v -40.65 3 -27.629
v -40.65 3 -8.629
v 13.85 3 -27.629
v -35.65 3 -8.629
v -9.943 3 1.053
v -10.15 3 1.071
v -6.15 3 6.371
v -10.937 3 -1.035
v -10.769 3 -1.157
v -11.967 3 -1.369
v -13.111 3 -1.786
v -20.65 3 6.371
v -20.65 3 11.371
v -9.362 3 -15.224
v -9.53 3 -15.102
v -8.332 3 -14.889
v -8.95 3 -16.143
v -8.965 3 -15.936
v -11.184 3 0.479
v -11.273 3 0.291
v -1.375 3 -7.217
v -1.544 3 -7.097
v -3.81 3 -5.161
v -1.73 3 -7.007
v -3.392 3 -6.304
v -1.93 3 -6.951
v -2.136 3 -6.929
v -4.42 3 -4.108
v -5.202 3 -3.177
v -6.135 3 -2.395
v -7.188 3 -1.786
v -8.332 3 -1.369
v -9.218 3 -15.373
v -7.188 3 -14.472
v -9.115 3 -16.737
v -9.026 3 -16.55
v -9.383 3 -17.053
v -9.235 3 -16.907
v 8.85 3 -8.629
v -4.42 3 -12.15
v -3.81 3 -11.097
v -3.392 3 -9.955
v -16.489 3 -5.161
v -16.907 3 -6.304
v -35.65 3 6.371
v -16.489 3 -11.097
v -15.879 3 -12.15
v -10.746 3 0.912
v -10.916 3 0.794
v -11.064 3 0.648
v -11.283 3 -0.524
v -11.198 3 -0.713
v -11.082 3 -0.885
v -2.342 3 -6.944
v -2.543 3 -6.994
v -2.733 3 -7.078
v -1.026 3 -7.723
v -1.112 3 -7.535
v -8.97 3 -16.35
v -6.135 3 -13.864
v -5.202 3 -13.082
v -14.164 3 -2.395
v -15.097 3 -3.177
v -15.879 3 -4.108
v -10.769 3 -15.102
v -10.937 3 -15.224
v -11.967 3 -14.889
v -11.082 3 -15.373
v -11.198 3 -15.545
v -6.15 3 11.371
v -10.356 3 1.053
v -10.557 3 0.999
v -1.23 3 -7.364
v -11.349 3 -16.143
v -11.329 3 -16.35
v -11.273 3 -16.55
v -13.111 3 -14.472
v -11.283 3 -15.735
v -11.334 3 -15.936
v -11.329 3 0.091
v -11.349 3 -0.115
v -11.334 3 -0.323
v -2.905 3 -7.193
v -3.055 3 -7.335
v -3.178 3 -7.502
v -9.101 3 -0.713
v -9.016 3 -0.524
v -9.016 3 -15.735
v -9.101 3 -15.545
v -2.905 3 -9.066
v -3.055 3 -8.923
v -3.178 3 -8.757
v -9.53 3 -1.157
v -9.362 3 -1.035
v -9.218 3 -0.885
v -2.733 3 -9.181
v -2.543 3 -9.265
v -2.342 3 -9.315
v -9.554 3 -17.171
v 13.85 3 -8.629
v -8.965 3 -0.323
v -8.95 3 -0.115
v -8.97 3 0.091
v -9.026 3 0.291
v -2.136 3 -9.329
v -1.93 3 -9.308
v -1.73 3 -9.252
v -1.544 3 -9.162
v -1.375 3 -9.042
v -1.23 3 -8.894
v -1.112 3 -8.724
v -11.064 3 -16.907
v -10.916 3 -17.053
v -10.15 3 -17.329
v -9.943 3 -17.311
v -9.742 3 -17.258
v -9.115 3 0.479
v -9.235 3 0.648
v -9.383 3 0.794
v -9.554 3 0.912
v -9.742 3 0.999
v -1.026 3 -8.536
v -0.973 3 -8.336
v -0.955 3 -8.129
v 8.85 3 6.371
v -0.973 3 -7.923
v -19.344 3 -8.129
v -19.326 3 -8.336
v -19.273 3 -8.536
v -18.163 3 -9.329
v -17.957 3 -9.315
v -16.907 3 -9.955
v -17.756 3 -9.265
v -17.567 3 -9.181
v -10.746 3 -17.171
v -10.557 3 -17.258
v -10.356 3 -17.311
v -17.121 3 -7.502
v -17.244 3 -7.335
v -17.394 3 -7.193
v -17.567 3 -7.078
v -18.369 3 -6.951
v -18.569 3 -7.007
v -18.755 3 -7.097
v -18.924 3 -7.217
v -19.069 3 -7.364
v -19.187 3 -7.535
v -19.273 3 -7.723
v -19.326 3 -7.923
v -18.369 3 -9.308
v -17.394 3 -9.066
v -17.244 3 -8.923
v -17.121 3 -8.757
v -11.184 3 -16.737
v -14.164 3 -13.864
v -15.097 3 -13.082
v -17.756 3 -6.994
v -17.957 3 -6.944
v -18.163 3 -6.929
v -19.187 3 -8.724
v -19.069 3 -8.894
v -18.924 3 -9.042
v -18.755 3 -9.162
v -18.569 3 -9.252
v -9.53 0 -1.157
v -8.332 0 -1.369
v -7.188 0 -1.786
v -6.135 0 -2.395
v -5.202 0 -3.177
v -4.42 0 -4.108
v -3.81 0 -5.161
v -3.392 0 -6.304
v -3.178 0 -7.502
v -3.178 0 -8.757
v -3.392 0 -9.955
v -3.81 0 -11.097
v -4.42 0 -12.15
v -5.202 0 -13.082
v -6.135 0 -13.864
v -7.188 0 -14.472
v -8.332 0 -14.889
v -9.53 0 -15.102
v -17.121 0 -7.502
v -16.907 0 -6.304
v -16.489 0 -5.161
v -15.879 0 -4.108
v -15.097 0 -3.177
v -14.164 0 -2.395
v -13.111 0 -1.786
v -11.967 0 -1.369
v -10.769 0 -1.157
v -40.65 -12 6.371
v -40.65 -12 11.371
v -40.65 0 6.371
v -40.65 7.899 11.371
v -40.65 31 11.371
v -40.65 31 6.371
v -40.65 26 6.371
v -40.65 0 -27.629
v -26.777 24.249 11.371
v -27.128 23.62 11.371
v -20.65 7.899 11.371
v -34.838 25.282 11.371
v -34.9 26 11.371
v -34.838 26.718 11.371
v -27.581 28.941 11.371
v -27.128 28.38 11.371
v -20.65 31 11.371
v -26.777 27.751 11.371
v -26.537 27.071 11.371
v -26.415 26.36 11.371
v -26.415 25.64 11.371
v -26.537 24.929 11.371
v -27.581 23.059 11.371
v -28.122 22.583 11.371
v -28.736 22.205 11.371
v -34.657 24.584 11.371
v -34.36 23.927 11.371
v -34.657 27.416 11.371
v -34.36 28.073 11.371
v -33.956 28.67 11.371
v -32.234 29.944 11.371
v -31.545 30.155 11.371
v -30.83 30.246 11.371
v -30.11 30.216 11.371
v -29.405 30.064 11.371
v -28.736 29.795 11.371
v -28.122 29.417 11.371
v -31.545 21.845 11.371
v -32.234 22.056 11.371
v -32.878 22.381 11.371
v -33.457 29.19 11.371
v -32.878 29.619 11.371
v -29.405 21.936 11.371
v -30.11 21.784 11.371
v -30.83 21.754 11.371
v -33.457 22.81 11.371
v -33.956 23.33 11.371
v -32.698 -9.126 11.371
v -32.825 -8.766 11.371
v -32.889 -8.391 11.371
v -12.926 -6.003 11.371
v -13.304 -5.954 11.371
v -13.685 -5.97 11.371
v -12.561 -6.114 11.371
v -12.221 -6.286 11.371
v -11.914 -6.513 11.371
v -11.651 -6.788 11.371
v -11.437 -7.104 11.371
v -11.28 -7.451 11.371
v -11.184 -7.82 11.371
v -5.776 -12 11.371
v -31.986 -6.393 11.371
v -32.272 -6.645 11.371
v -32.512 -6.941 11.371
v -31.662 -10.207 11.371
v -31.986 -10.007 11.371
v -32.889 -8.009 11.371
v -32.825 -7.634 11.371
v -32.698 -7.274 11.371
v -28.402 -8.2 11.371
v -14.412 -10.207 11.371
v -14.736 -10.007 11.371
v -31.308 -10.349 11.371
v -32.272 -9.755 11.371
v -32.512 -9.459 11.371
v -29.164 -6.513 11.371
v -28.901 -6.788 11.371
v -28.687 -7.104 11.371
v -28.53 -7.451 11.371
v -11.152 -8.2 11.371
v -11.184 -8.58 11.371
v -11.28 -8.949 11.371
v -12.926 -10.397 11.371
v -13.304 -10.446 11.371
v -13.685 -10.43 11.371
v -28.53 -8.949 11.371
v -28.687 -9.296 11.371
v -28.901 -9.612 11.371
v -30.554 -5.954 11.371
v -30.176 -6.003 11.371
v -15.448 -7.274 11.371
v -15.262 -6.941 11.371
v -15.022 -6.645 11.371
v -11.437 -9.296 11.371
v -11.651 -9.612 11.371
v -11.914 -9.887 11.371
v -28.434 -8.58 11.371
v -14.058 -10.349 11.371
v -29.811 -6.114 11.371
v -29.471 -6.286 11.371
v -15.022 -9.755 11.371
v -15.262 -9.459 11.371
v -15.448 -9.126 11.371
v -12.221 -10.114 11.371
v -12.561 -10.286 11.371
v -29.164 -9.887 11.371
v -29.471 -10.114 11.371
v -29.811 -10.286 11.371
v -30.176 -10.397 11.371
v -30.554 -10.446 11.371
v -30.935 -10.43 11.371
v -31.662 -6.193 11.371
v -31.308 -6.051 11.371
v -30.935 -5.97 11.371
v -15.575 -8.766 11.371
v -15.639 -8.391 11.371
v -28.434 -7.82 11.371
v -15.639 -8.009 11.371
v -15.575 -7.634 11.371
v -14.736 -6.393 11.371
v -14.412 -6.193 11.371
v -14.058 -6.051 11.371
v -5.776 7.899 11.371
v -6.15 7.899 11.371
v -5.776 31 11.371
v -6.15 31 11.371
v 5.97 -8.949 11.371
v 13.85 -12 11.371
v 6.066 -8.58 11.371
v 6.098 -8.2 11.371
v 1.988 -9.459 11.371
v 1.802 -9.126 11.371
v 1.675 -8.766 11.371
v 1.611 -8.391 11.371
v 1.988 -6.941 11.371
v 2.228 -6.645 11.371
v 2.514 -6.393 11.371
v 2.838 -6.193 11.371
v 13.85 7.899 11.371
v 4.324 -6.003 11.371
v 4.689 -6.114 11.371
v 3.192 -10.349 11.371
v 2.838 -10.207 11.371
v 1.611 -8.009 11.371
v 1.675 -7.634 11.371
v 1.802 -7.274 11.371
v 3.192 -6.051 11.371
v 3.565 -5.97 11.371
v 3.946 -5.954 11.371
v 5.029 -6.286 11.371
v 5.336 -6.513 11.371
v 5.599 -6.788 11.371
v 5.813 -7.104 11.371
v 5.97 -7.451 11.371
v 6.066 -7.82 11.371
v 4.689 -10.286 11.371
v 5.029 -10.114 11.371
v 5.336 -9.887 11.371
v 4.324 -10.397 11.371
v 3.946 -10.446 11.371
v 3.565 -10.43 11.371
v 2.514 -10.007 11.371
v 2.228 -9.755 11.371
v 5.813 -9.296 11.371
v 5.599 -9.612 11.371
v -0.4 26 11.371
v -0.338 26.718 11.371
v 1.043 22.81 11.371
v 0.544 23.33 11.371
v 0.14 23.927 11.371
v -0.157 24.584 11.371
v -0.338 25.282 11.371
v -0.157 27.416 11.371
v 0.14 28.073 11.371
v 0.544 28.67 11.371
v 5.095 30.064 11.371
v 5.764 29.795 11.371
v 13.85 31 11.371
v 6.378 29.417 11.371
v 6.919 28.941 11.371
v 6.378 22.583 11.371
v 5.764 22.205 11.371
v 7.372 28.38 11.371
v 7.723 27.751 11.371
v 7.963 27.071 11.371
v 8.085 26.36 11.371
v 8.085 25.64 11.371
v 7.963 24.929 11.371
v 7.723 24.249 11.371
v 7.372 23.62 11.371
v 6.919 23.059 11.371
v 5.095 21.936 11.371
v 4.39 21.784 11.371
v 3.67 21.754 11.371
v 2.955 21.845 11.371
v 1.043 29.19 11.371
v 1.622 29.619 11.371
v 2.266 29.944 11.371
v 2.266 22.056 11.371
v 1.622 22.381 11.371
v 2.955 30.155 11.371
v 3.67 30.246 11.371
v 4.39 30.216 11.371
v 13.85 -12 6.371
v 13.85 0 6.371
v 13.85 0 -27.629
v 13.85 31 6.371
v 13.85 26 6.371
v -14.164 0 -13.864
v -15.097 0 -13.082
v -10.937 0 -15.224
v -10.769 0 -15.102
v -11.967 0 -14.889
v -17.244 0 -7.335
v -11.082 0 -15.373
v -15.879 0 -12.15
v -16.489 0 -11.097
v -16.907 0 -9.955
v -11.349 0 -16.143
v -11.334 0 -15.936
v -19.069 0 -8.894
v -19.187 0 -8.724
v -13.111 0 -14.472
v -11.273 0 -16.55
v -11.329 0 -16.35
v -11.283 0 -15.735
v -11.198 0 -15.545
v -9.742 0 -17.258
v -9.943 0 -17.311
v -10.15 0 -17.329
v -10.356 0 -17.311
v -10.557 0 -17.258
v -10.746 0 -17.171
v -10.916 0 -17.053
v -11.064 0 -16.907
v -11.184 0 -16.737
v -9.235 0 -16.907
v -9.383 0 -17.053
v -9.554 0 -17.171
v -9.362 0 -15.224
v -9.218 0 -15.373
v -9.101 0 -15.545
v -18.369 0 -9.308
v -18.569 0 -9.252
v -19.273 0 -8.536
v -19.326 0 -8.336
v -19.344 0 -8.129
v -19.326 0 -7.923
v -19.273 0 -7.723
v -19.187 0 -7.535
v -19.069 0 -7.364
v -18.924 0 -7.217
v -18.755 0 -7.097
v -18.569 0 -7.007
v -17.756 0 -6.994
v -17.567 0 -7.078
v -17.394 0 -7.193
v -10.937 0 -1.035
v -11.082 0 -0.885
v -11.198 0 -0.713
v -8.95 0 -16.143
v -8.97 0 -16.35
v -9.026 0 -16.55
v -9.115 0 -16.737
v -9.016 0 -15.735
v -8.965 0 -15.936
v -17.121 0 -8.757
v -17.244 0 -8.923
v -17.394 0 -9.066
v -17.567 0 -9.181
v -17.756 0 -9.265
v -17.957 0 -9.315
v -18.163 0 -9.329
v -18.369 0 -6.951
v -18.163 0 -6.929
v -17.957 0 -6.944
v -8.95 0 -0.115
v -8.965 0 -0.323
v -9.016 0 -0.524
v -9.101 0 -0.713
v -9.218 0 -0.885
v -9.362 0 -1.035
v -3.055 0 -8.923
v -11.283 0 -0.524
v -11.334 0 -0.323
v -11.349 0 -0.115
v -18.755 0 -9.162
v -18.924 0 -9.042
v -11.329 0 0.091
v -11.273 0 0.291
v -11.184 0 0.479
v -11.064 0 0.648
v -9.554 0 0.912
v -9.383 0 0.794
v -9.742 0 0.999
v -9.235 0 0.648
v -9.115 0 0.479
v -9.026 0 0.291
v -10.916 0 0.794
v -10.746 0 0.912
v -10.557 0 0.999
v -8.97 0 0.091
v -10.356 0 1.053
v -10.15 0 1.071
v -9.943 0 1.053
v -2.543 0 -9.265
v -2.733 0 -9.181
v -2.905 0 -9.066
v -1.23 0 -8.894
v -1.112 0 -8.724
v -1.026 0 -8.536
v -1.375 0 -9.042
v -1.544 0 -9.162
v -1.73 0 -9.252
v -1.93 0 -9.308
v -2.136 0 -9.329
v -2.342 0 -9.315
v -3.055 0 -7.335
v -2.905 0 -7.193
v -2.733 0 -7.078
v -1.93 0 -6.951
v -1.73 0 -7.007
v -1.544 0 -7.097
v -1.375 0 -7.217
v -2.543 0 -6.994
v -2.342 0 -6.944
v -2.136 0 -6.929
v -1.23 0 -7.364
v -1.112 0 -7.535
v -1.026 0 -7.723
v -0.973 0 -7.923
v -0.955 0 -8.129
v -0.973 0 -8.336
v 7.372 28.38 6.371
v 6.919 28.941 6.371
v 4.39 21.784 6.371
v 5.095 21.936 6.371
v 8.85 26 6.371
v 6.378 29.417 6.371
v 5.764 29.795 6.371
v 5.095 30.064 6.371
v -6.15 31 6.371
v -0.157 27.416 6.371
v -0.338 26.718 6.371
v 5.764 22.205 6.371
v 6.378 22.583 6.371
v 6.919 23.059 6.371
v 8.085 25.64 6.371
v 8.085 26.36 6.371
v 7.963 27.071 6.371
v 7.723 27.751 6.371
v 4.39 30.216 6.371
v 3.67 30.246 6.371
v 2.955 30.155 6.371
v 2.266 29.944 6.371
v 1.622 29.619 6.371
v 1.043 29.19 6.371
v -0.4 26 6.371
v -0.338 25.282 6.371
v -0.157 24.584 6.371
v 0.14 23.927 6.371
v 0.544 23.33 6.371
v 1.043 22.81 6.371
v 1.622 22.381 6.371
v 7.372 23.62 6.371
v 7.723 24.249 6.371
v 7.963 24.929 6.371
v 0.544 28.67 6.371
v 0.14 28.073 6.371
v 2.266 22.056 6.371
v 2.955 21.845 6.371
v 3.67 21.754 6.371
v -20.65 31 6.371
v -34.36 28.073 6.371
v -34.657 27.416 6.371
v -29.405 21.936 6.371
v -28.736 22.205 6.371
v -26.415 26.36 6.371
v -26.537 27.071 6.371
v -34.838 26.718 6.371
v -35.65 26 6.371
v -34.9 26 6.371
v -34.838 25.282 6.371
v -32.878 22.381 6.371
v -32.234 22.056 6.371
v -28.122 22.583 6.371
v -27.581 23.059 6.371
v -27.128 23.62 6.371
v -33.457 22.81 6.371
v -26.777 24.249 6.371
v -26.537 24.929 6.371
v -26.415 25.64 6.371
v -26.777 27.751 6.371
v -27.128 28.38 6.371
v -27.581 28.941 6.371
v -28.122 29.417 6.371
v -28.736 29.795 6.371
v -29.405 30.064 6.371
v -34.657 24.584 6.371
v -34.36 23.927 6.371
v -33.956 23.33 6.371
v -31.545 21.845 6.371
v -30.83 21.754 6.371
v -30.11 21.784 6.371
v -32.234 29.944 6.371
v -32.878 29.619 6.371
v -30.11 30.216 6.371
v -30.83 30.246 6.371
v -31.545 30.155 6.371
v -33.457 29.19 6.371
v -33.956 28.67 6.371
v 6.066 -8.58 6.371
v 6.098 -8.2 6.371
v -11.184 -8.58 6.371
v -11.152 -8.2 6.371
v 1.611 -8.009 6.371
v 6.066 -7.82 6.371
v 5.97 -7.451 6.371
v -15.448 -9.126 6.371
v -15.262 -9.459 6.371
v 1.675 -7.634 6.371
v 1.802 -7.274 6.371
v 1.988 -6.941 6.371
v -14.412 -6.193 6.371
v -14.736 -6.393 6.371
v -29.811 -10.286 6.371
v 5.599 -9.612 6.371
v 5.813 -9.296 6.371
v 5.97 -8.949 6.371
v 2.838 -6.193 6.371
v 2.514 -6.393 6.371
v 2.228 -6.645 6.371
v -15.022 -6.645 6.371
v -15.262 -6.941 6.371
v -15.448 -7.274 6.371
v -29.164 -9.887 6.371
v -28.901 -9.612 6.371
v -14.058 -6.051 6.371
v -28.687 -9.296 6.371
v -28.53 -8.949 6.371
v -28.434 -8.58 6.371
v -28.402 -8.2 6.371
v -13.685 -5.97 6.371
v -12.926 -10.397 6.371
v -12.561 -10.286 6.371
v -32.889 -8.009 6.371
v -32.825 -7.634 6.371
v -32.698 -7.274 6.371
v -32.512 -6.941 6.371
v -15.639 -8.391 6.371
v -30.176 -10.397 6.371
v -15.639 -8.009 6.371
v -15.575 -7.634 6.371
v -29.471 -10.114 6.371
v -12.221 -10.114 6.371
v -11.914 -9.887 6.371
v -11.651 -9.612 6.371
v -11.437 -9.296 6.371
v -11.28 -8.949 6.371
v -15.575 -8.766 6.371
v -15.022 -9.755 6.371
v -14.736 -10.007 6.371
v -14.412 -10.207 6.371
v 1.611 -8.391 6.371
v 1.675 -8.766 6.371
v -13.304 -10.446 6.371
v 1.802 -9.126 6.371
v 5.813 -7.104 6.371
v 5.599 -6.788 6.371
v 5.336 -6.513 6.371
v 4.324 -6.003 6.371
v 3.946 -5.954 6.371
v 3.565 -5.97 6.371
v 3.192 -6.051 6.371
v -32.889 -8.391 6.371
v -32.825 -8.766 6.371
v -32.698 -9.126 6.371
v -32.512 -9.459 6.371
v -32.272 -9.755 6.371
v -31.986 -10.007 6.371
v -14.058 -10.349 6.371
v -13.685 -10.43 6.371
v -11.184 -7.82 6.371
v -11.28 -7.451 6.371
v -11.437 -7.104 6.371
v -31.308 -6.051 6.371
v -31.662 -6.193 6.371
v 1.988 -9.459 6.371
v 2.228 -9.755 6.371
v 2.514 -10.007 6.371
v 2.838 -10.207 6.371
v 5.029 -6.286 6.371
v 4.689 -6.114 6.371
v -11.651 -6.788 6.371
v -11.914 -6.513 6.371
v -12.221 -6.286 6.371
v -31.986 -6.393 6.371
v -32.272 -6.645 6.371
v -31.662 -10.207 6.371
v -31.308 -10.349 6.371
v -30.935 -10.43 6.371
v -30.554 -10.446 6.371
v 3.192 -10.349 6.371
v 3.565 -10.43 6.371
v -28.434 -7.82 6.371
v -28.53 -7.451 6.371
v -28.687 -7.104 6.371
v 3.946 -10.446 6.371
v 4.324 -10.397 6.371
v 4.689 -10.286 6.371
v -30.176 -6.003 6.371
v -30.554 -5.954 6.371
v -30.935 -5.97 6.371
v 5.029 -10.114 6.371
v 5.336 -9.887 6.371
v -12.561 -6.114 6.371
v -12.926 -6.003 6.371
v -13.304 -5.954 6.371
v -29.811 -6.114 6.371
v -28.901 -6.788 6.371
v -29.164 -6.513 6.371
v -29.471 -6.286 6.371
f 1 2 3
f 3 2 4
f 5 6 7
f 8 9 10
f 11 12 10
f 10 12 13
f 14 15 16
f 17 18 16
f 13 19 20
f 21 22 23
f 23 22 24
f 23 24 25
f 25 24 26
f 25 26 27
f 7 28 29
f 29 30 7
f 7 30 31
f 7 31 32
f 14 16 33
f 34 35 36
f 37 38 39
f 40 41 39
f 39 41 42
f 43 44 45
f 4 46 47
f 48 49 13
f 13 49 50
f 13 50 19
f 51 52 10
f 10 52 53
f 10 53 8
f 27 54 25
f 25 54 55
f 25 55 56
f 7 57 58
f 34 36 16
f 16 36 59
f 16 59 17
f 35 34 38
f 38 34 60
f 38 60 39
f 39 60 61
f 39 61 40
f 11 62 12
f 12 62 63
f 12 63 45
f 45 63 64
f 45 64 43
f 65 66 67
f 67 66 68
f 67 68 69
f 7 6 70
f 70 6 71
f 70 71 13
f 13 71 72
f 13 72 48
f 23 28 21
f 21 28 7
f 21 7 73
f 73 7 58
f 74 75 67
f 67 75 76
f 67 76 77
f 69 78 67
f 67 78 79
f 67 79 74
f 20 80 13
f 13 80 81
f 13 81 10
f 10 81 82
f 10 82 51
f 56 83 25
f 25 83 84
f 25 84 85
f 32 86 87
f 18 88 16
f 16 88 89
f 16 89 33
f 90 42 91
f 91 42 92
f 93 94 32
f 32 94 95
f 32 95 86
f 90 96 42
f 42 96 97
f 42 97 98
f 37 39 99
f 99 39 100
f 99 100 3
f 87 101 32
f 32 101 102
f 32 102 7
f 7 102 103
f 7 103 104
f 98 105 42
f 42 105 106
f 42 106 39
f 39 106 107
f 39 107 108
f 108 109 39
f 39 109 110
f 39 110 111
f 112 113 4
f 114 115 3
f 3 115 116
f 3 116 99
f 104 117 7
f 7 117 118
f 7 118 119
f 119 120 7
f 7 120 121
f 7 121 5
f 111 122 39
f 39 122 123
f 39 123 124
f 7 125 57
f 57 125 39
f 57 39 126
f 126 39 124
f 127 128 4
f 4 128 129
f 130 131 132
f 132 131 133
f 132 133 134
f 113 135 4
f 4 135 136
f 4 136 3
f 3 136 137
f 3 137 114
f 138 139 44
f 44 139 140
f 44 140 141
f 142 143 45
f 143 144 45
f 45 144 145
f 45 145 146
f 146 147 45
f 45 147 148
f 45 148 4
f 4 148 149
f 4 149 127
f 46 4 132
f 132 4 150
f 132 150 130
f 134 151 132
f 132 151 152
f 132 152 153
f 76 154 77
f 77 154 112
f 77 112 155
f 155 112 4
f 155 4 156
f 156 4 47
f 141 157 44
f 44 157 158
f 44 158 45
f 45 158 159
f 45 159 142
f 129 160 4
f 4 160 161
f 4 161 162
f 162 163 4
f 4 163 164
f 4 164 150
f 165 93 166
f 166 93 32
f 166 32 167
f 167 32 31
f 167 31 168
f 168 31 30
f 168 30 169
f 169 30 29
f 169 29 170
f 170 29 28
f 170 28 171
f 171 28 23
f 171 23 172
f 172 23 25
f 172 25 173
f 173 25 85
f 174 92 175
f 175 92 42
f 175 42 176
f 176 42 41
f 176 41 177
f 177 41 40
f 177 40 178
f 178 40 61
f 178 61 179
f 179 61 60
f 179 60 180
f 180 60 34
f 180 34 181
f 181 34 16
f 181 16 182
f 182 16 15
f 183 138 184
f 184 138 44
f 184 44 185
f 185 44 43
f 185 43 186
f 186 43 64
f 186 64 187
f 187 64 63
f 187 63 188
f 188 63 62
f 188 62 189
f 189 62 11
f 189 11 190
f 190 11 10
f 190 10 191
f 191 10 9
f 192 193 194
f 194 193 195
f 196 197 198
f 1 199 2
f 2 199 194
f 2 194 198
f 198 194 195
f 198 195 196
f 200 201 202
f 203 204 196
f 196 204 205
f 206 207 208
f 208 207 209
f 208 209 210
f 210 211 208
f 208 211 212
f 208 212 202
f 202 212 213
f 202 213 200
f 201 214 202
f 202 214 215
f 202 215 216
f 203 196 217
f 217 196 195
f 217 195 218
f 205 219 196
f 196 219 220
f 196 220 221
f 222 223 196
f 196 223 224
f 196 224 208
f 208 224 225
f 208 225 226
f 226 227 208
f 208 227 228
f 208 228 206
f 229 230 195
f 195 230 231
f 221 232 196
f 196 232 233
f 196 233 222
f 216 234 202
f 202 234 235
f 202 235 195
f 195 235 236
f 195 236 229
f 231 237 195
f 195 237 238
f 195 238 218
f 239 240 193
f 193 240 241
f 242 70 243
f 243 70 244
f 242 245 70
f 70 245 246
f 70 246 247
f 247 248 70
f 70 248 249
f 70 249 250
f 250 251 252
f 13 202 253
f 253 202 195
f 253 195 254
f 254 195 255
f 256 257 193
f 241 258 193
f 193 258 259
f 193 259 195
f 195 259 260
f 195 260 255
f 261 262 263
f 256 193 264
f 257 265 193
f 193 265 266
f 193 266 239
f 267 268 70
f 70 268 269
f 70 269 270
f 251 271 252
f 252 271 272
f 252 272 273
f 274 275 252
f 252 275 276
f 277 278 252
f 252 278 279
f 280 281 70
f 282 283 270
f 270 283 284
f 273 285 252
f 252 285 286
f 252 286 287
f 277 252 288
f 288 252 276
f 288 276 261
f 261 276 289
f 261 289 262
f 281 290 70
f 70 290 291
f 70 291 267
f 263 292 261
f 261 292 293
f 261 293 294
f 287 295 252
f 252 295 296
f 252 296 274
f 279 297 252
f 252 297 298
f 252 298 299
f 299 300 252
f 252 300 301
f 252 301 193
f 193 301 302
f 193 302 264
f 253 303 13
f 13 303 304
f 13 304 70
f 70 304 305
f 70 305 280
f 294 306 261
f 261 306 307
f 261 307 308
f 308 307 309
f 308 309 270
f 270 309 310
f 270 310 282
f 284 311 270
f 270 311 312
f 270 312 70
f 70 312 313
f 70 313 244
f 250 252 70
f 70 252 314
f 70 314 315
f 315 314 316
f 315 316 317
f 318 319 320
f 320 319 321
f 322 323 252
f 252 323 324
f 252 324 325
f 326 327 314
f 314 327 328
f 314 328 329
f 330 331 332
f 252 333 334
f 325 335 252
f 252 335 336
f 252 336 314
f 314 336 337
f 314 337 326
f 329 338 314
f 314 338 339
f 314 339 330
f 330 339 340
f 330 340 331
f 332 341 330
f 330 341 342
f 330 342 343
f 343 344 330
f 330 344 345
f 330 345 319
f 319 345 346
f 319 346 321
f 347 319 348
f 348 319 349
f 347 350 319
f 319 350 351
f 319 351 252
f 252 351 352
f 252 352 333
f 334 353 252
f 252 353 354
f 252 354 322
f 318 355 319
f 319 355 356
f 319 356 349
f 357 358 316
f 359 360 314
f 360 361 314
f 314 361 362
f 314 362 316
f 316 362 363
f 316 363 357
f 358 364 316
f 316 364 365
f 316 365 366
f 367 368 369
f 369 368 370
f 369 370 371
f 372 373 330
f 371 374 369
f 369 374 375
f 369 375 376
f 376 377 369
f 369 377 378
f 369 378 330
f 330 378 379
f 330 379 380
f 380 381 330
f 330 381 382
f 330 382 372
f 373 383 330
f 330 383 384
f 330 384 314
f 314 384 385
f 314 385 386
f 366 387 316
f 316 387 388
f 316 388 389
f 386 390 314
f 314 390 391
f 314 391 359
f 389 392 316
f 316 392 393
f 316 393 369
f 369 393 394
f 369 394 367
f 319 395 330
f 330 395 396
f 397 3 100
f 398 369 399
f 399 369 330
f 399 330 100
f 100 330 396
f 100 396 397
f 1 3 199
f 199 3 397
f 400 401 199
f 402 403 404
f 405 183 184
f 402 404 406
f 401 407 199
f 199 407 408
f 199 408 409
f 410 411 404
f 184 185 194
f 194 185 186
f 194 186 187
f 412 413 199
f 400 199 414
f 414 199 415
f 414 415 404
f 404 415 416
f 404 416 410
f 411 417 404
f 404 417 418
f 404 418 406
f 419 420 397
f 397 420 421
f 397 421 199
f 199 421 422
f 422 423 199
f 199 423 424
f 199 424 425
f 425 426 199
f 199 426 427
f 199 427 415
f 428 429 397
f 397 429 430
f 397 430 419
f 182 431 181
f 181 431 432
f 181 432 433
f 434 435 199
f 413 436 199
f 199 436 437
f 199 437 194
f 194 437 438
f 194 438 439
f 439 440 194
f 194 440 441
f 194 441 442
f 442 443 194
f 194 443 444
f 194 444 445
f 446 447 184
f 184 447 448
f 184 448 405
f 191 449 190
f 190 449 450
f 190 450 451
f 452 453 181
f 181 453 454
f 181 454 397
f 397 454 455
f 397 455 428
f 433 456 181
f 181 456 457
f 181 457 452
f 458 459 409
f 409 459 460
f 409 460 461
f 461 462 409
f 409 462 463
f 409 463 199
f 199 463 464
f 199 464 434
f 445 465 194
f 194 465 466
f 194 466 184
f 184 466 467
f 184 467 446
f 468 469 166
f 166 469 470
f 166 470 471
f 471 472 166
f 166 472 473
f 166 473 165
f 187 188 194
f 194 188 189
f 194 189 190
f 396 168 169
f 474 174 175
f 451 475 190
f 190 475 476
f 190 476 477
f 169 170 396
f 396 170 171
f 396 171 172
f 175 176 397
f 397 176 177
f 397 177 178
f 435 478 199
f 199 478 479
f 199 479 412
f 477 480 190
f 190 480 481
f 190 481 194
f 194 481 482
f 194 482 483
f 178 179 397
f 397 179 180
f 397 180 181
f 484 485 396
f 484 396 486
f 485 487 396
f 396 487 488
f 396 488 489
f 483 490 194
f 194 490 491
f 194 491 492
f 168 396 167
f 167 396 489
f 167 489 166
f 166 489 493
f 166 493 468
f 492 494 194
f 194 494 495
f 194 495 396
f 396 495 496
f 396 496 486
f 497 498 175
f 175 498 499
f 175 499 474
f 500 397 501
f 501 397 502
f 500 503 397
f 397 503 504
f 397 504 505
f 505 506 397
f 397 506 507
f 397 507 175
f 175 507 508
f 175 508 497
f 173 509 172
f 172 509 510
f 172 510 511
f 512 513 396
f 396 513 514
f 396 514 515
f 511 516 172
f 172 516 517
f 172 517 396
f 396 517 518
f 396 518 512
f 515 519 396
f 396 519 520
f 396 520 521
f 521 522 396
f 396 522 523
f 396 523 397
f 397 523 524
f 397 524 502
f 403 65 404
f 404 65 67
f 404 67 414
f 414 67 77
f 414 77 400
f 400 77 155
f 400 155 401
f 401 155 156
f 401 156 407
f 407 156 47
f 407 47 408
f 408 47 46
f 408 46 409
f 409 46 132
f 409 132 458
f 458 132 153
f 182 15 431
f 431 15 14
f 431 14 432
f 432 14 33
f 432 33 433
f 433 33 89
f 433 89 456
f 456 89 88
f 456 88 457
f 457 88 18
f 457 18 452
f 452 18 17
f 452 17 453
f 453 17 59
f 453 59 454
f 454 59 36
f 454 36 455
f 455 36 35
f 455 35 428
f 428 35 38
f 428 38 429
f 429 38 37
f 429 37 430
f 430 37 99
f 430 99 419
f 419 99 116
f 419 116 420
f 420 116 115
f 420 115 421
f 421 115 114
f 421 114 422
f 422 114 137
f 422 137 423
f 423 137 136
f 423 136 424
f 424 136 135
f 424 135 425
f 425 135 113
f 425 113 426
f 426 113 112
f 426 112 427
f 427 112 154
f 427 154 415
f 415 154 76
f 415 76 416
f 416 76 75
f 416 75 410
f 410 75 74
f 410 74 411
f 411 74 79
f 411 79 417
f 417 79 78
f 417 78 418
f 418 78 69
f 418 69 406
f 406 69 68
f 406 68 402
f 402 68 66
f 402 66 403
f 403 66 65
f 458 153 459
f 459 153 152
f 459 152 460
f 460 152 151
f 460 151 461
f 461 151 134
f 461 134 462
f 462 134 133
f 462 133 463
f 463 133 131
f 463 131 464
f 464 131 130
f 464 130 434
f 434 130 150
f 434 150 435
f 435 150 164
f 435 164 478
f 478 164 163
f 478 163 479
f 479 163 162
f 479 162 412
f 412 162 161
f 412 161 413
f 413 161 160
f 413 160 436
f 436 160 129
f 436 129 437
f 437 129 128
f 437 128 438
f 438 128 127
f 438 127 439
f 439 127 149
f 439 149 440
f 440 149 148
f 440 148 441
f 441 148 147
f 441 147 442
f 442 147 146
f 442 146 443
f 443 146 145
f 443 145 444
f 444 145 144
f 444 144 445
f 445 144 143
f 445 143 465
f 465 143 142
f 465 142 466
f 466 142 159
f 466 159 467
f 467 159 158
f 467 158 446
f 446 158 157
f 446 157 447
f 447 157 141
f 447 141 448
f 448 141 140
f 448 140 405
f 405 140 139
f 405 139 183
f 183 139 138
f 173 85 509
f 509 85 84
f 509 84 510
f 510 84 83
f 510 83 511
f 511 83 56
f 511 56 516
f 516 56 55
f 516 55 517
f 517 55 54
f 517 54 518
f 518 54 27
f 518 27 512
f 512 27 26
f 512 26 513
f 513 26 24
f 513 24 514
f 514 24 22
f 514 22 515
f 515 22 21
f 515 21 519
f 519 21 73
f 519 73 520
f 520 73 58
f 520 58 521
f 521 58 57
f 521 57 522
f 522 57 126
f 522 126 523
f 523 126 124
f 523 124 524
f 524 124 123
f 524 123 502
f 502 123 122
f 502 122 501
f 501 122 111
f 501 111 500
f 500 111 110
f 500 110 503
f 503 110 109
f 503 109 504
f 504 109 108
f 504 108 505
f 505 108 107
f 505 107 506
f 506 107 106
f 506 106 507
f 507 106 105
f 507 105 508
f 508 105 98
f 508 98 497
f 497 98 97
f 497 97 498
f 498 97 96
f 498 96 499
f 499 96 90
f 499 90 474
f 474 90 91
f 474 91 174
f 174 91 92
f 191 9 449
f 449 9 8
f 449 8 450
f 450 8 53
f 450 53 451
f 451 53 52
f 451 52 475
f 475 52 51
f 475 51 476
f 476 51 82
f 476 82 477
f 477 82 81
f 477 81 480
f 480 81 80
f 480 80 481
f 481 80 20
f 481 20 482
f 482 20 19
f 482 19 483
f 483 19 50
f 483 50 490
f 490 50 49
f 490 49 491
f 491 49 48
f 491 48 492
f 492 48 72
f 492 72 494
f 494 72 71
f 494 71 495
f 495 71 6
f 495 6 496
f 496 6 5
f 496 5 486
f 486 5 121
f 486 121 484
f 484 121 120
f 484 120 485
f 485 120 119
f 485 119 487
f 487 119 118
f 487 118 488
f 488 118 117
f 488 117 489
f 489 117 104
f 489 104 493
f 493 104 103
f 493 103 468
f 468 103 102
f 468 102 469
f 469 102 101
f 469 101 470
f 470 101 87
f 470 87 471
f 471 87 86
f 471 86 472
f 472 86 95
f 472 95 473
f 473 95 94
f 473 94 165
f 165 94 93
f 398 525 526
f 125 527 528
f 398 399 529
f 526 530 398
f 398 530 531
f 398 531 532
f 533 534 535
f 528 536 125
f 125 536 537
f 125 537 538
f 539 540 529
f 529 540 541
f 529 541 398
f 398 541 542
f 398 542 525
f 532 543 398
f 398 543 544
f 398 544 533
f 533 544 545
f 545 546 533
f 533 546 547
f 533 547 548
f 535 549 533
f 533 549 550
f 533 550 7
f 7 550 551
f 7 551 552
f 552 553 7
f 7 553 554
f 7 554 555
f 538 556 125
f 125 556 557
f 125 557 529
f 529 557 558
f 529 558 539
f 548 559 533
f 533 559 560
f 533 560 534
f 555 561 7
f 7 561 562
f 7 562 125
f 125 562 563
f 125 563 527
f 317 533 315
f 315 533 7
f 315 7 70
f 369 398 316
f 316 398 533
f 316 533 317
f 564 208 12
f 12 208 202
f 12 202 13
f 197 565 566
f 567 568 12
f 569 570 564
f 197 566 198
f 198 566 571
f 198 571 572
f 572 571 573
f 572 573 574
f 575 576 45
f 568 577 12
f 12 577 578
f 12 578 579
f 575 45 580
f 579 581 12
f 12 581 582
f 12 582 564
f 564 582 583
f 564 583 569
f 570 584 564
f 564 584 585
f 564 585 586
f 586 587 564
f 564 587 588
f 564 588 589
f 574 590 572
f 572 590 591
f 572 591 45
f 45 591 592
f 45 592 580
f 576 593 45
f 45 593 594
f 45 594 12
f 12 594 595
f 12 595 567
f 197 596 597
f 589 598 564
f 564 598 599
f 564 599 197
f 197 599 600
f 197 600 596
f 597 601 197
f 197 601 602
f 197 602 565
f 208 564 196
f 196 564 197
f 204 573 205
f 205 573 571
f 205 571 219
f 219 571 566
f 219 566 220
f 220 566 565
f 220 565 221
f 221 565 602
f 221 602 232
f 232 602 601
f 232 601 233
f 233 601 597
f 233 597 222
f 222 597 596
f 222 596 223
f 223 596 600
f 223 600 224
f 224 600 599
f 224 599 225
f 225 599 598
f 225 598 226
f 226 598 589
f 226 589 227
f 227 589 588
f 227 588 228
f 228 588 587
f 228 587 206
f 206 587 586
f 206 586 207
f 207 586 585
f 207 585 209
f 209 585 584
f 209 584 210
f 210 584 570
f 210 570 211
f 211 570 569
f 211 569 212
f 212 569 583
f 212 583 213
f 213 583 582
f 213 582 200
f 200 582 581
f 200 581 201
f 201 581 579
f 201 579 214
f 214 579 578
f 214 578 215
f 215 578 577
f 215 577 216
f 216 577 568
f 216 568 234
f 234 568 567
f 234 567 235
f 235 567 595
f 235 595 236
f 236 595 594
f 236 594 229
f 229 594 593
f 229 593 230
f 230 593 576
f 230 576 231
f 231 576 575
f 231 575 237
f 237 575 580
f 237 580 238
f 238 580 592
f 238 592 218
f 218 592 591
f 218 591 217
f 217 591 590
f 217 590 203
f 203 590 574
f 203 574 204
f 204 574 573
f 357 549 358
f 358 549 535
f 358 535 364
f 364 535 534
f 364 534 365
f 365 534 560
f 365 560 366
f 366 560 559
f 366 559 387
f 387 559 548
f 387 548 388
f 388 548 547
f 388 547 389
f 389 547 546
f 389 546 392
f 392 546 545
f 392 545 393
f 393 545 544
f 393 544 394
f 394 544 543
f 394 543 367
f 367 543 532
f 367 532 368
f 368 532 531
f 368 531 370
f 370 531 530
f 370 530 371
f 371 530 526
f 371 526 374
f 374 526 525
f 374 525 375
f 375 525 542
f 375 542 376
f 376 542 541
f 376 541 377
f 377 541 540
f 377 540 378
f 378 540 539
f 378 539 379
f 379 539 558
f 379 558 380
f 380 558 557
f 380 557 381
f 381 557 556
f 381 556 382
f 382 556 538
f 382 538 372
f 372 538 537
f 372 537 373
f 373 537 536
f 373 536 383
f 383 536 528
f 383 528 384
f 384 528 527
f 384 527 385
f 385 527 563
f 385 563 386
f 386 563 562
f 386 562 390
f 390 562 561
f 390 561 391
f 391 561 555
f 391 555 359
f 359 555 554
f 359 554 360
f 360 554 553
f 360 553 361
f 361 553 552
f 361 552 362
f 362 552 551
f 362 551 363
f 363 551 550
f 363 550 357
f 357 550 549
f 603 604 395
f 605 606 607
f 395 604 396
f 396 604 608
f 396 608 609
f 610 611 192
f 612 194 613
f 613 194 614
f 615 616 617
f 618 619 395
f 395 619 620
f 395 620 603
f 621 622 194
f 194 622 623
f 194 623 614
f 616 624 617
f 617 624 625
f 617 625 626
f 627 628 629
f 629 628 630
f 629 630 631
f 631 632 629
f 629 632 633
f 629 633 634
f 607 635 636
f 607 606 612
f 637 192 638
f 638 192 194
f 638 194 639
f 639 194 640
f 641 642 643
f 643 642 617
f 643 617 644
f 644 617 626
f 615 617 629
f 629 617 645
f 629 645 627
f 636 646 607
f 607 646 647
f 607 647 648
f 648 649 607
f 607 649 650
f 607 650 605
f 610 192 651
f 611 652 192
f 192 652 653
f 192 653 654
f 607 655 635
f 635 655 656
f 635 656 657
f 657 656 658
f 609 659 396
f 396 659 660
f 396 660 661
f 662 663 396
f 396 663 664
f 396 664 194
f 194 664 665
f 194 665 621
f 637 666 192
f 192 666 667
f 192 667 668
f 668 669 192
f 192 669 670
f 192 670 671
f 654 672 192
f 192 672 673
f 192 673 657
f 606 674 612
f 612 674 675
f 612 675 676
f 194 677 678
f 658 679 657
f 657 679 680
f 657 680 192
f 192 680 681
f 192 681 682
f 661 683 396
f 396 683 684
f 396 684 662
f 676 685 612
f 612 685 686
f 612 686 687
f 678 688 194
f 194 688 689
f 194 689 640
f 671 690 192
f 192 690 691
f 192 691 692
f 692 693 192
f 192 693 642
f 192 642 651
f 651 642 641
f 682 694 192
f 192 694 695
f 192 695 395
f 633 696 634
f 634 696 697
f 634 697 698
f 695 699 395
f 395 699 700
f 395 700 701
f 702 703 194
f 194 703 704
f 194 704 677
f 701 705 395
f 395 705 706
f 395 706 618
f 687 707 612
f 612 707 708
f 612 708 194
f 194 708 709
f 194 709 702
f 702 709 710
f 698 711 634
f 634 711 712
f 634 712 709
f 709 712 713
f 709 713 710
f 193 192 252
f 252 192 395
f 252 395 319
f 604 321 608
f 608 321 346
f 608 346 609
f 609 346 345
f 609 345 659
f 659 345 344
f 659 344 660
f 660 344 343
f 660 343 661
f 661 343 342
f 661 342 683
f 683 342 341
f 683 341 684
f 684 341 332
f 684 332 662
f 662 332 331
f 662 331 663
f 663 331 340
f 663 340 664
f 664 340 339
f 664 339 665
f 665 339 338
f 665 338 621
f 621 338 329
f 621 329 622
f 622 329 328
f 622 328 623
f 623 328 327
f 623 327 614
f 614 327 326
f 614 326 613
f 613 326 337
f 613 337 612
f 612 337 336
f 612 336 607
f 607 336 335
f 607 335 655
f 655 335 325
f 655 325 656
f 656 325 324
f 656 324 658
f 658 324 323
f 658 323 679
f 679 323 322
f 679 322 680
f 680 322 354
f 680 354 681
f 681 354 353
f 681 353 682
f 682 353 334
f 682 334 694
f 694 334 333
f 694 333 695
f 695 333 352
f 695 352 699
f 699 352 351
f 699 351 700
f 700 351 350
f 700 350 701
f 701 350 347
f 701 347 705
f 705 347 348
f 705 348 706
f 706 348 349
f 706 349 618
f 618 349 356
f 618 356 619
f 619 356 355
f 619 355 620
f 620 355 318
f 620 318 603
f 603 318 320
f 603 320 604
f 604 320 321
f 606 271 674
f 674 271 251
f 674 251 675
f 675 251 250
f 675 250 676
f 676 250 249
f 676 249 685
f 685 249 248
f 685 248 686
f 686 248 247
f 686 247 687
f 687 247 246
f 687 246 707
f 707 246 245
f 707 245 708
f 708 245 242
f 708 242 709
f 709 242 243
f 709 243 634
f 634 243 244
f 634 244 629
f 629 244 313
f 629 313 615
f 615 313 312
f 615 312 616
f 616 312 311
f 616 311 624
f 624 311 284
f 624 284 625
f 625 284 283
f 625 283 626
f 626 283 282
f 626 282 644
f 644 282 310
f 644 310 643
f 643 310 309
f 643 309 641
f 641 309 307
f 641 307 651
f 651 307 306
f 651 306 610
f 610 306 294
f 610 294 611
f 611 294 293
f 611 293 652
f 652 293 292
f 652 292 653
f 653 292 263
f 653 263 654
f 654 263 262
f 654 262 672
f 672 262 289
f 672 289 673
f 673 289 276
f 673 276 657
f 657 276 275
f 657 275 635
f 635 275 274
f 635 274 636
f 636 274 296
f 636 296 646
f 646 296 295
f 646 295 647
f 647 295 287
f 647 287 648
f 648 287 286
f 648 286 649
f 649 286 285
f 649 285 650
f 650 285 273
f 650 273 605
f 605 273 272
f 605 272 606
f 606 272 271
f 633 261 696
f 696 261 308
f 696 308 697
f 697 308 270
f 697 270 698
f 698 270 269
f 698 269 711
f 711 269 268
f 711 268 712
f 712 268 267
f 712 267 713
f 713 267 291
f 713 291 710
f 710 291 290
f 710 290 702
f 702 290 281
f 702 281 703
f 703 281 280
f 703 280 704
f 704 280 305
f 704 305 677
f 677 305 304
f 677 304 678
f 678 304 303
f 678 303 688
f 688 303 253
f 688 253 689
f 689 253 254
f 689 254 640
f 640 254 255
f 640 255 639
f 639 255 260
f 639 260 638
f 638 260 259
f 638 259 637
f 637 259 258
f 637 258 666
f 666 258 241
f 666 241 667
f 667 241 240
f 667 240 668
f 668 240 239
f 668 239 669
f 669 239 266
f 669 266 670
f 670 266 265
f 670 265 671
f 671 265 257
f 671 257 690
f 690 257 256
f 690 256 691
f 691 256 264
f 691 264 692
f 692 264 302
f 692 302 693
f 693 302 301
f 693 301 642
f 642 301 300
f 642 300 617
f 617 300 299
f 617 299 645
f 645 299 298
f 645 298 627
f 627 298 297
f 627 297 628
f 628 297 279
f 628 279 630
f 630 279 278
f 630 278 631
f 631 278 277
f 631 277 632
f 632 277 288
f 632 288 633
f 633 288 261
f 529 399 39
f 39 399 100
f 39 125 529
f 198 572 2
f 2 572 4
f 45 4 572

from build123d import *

# Parameters (mm, degrees)
SKETCH1_W                 = 54.5
SKETCH1_H                 = 39
BOSS_EXTRUDE1_DEPTH       = 3
SKETCH10_R                = 7
CUT_EXTRUDE1_DEPTH        = 5
M2_CLEARANCE_HOLE1_D      = 2.4
M2_CLEARANCE_HOLE1_DEPTH  = 17
M2_CLEARANCE_HOLE1_TIP    = 0.721032743
SKETCH12_W                = 20
SKETCH12_H                = 5
BOSS_EXTRUDE2_DEPTH       = 28
SKETCH13_R                = 4.25
CUT_EXTRUDE2_DEPTH        = 5
SKETCH16_W                = 54.5
SKETCH16_H                = 5
BOSS_EXTRUDE4_DEPTH       = 12
F_8_CLEARANCE_HOLE1_D     = 4.4958
F_8_CLEARANCE_HOLE1_DEPTH = 17
F_8_CLEARANCE_HOLE1_TIP   = 1.350674586
RIB2_REACH                = 70.517
SKETCH20_WALL_W           = 166.493784704
SKETCH20_WALL_H           = 5
RIB4_REACH                = 70.517
SKETCH21_WALL_W           = 166.493784704
SKETCH21_WALL_H           = 5


with BuildPart() as part:
    # Sketch1 → Boss-Extrude1 (new body)
    with BuildSketch(Plane(origin=(0, 0, 0), x_dir=(1, 0, 0), z_dir=(0, 1, 0))):
        with Locations((-13.399543841, 8.129312584)):
            Rectangle(SKETCH1_W, SKETCH1_H)
    extrude(amount=BOSS_EXTRUDE1_DEPTH)

    # Sketch10 → Cut-Extrude1 (cut)
    with BuildSketch(Plane(origin=(0, 3, 0), x_dir=(1, 0, 0), z_dir=(0, 1, 0))):
        with Locations(Location((-10.149543841, 8.129312584, 0), (0, 0, 270))):
            Circle(SKETCH10_R)
    extrude(amount=-CUT_EXTRUDE1_DEPTH, mode=Mode.SUBTRACT)

    # M2 Clearance Hole1
    with Locations(Plane(origin=(-10.149543841, 3, -0.129312584), x_dir=(0, 0, 1), z_dir=(0, 1, 0))):
        with Locations((0, 0), (-8, 7.99475453), (-8, -7.99475453), (-16, 0)):
            Hole(M2_CLEARANCE_HOLE1_D / 2, depth=M2_CLEARANCE_HOLE1_DEPTH)
            with Locations((0, 0, -(M2_CLEARANCE_HOLE1_DEPTH + M2_CLEARANCE_HOLE1_TIP / 2))):  # 118° drill point
                Cone(0, M2_CLEARANCE_HOLE1_D / 2, M2_CLEARANCE_HOLE1_TIP, mode=Mode.SUBTRACT)

    # Sketch12 → Boss-Extrude2 (add)
    with BuildSketch(Plane(origin=(0, 3, 0), x_dir=(1, 0, 0), z_dir=(0, 1, 0))):
        with Locations((3.850456159, -8.870687416)):
            Rectangle(SKETCH12_W, SKETCH12_H)
        with Locations((-30.649543841, -8.870687416)):
            Rectangle(SKETCH12_W, SKETCH12_H)
    extrude(amount=BOSS_EXTRUDE2_DEPTH)

    # Sketch13 → Cut-Extrude2 (cut)
    with BuildSketch(Plane(origin=(0, 0, 6.370687416), x_dir=(-1, 0, 0), z_dir=(0, 0, -1))):
        with Locations((-3.850456159, 26)):
            Circle(SKETCH13_R)
        with Locations((30.649543841, 26)):
            Circle(SKETCH13_R)
    extrude(amount=-CUT_EXTRUDE2_DEPTH, mode=Mode.SUBTRACT)

    # Sketch16 → Boss-Extrude4 (add)
    with BuildSketch(Plane.XZ):
        with Locations((-13.399543841, 8.870687416)):
            Rectangle(SKETCH16_W, SKETCH16_H)
    extrude(amount=BOSS_EXTRUDE4_DEPTH)

    # #8 Clearance Hole1
    with Locations(Plane(origin=(-30.649543841, -8.2, 11.370687416), x_dir=(1, 0, 0), z_dir=(0, 0, 1))):
        with Locations((0, 0), (17.25, 0), (34.5, 0)):
            Hole(F_8_CLEARANCE_HOLE1_D / 2, depth=F_8_CLEARANCE_HOLE1_DEPTH)
            with Locations((0, 0, -(F_8_CLEARANCE_HOLE1_DEPTH + F_8_CLEARANCE_HOLE1_TIP / 2))):  # 118° drill point
                Cone(0, F_8_CLEARANCE_HOLE1_D / 2, F_8_CLEARANCE_HOLE1_TIP, mode=Mode.SUBTRACT)

    # Sketch20 wall → Rib2 (add, up to next)
    with BuildSketch(Plane(origin=(13.850456159, 14.5, -1.129312584), x_dir=(0, -0.837610596839, -0.546267780547), z_dir=(0, 0.546267780547, -0.837610596839)), mode=Mode.PRIVATE) as rib2_sk1:
        with Locations((0, 2.5)):
            Rectangle(SKETCH20_WALL_W, SKETCH20_WALL_H)
    rib2_tool1 = extrude(rib2_sk1.sketch, amount=-RIB2_REACH, mode=Mode.PRIVATE) - part.part
    add(rib2_tool1.solids().sort_by_distance((13.850456159, 14.5, -1.129312584))[0])

    # Sketch21 wall → Rib4 (add, up to next)
    with BuildSketch(Plane(origin=(-40.649543841, 14.5, -1.129312584), x_dir=(0, -0.837610596839, -0.546267780547), z_dir=(0, -0.546267780547, 0.837610596839)), mode=Mode.PRIVATE) as rib4_sk1:
        with Locations((0, 2.5)):
            Rectangle(SKETCH21_WALL_W, SKETCH21_WALL_H)
    rib4_tool1 = extrude(rib4_sk1.sketch, amount=RIB4_REACH, mode=Mode.PRIVATE) - part.part
    add(rib4_tool1.solids().sort_by_distance((-40.649543841, 14.5, -1.129312584))[0])


solid = part.part
